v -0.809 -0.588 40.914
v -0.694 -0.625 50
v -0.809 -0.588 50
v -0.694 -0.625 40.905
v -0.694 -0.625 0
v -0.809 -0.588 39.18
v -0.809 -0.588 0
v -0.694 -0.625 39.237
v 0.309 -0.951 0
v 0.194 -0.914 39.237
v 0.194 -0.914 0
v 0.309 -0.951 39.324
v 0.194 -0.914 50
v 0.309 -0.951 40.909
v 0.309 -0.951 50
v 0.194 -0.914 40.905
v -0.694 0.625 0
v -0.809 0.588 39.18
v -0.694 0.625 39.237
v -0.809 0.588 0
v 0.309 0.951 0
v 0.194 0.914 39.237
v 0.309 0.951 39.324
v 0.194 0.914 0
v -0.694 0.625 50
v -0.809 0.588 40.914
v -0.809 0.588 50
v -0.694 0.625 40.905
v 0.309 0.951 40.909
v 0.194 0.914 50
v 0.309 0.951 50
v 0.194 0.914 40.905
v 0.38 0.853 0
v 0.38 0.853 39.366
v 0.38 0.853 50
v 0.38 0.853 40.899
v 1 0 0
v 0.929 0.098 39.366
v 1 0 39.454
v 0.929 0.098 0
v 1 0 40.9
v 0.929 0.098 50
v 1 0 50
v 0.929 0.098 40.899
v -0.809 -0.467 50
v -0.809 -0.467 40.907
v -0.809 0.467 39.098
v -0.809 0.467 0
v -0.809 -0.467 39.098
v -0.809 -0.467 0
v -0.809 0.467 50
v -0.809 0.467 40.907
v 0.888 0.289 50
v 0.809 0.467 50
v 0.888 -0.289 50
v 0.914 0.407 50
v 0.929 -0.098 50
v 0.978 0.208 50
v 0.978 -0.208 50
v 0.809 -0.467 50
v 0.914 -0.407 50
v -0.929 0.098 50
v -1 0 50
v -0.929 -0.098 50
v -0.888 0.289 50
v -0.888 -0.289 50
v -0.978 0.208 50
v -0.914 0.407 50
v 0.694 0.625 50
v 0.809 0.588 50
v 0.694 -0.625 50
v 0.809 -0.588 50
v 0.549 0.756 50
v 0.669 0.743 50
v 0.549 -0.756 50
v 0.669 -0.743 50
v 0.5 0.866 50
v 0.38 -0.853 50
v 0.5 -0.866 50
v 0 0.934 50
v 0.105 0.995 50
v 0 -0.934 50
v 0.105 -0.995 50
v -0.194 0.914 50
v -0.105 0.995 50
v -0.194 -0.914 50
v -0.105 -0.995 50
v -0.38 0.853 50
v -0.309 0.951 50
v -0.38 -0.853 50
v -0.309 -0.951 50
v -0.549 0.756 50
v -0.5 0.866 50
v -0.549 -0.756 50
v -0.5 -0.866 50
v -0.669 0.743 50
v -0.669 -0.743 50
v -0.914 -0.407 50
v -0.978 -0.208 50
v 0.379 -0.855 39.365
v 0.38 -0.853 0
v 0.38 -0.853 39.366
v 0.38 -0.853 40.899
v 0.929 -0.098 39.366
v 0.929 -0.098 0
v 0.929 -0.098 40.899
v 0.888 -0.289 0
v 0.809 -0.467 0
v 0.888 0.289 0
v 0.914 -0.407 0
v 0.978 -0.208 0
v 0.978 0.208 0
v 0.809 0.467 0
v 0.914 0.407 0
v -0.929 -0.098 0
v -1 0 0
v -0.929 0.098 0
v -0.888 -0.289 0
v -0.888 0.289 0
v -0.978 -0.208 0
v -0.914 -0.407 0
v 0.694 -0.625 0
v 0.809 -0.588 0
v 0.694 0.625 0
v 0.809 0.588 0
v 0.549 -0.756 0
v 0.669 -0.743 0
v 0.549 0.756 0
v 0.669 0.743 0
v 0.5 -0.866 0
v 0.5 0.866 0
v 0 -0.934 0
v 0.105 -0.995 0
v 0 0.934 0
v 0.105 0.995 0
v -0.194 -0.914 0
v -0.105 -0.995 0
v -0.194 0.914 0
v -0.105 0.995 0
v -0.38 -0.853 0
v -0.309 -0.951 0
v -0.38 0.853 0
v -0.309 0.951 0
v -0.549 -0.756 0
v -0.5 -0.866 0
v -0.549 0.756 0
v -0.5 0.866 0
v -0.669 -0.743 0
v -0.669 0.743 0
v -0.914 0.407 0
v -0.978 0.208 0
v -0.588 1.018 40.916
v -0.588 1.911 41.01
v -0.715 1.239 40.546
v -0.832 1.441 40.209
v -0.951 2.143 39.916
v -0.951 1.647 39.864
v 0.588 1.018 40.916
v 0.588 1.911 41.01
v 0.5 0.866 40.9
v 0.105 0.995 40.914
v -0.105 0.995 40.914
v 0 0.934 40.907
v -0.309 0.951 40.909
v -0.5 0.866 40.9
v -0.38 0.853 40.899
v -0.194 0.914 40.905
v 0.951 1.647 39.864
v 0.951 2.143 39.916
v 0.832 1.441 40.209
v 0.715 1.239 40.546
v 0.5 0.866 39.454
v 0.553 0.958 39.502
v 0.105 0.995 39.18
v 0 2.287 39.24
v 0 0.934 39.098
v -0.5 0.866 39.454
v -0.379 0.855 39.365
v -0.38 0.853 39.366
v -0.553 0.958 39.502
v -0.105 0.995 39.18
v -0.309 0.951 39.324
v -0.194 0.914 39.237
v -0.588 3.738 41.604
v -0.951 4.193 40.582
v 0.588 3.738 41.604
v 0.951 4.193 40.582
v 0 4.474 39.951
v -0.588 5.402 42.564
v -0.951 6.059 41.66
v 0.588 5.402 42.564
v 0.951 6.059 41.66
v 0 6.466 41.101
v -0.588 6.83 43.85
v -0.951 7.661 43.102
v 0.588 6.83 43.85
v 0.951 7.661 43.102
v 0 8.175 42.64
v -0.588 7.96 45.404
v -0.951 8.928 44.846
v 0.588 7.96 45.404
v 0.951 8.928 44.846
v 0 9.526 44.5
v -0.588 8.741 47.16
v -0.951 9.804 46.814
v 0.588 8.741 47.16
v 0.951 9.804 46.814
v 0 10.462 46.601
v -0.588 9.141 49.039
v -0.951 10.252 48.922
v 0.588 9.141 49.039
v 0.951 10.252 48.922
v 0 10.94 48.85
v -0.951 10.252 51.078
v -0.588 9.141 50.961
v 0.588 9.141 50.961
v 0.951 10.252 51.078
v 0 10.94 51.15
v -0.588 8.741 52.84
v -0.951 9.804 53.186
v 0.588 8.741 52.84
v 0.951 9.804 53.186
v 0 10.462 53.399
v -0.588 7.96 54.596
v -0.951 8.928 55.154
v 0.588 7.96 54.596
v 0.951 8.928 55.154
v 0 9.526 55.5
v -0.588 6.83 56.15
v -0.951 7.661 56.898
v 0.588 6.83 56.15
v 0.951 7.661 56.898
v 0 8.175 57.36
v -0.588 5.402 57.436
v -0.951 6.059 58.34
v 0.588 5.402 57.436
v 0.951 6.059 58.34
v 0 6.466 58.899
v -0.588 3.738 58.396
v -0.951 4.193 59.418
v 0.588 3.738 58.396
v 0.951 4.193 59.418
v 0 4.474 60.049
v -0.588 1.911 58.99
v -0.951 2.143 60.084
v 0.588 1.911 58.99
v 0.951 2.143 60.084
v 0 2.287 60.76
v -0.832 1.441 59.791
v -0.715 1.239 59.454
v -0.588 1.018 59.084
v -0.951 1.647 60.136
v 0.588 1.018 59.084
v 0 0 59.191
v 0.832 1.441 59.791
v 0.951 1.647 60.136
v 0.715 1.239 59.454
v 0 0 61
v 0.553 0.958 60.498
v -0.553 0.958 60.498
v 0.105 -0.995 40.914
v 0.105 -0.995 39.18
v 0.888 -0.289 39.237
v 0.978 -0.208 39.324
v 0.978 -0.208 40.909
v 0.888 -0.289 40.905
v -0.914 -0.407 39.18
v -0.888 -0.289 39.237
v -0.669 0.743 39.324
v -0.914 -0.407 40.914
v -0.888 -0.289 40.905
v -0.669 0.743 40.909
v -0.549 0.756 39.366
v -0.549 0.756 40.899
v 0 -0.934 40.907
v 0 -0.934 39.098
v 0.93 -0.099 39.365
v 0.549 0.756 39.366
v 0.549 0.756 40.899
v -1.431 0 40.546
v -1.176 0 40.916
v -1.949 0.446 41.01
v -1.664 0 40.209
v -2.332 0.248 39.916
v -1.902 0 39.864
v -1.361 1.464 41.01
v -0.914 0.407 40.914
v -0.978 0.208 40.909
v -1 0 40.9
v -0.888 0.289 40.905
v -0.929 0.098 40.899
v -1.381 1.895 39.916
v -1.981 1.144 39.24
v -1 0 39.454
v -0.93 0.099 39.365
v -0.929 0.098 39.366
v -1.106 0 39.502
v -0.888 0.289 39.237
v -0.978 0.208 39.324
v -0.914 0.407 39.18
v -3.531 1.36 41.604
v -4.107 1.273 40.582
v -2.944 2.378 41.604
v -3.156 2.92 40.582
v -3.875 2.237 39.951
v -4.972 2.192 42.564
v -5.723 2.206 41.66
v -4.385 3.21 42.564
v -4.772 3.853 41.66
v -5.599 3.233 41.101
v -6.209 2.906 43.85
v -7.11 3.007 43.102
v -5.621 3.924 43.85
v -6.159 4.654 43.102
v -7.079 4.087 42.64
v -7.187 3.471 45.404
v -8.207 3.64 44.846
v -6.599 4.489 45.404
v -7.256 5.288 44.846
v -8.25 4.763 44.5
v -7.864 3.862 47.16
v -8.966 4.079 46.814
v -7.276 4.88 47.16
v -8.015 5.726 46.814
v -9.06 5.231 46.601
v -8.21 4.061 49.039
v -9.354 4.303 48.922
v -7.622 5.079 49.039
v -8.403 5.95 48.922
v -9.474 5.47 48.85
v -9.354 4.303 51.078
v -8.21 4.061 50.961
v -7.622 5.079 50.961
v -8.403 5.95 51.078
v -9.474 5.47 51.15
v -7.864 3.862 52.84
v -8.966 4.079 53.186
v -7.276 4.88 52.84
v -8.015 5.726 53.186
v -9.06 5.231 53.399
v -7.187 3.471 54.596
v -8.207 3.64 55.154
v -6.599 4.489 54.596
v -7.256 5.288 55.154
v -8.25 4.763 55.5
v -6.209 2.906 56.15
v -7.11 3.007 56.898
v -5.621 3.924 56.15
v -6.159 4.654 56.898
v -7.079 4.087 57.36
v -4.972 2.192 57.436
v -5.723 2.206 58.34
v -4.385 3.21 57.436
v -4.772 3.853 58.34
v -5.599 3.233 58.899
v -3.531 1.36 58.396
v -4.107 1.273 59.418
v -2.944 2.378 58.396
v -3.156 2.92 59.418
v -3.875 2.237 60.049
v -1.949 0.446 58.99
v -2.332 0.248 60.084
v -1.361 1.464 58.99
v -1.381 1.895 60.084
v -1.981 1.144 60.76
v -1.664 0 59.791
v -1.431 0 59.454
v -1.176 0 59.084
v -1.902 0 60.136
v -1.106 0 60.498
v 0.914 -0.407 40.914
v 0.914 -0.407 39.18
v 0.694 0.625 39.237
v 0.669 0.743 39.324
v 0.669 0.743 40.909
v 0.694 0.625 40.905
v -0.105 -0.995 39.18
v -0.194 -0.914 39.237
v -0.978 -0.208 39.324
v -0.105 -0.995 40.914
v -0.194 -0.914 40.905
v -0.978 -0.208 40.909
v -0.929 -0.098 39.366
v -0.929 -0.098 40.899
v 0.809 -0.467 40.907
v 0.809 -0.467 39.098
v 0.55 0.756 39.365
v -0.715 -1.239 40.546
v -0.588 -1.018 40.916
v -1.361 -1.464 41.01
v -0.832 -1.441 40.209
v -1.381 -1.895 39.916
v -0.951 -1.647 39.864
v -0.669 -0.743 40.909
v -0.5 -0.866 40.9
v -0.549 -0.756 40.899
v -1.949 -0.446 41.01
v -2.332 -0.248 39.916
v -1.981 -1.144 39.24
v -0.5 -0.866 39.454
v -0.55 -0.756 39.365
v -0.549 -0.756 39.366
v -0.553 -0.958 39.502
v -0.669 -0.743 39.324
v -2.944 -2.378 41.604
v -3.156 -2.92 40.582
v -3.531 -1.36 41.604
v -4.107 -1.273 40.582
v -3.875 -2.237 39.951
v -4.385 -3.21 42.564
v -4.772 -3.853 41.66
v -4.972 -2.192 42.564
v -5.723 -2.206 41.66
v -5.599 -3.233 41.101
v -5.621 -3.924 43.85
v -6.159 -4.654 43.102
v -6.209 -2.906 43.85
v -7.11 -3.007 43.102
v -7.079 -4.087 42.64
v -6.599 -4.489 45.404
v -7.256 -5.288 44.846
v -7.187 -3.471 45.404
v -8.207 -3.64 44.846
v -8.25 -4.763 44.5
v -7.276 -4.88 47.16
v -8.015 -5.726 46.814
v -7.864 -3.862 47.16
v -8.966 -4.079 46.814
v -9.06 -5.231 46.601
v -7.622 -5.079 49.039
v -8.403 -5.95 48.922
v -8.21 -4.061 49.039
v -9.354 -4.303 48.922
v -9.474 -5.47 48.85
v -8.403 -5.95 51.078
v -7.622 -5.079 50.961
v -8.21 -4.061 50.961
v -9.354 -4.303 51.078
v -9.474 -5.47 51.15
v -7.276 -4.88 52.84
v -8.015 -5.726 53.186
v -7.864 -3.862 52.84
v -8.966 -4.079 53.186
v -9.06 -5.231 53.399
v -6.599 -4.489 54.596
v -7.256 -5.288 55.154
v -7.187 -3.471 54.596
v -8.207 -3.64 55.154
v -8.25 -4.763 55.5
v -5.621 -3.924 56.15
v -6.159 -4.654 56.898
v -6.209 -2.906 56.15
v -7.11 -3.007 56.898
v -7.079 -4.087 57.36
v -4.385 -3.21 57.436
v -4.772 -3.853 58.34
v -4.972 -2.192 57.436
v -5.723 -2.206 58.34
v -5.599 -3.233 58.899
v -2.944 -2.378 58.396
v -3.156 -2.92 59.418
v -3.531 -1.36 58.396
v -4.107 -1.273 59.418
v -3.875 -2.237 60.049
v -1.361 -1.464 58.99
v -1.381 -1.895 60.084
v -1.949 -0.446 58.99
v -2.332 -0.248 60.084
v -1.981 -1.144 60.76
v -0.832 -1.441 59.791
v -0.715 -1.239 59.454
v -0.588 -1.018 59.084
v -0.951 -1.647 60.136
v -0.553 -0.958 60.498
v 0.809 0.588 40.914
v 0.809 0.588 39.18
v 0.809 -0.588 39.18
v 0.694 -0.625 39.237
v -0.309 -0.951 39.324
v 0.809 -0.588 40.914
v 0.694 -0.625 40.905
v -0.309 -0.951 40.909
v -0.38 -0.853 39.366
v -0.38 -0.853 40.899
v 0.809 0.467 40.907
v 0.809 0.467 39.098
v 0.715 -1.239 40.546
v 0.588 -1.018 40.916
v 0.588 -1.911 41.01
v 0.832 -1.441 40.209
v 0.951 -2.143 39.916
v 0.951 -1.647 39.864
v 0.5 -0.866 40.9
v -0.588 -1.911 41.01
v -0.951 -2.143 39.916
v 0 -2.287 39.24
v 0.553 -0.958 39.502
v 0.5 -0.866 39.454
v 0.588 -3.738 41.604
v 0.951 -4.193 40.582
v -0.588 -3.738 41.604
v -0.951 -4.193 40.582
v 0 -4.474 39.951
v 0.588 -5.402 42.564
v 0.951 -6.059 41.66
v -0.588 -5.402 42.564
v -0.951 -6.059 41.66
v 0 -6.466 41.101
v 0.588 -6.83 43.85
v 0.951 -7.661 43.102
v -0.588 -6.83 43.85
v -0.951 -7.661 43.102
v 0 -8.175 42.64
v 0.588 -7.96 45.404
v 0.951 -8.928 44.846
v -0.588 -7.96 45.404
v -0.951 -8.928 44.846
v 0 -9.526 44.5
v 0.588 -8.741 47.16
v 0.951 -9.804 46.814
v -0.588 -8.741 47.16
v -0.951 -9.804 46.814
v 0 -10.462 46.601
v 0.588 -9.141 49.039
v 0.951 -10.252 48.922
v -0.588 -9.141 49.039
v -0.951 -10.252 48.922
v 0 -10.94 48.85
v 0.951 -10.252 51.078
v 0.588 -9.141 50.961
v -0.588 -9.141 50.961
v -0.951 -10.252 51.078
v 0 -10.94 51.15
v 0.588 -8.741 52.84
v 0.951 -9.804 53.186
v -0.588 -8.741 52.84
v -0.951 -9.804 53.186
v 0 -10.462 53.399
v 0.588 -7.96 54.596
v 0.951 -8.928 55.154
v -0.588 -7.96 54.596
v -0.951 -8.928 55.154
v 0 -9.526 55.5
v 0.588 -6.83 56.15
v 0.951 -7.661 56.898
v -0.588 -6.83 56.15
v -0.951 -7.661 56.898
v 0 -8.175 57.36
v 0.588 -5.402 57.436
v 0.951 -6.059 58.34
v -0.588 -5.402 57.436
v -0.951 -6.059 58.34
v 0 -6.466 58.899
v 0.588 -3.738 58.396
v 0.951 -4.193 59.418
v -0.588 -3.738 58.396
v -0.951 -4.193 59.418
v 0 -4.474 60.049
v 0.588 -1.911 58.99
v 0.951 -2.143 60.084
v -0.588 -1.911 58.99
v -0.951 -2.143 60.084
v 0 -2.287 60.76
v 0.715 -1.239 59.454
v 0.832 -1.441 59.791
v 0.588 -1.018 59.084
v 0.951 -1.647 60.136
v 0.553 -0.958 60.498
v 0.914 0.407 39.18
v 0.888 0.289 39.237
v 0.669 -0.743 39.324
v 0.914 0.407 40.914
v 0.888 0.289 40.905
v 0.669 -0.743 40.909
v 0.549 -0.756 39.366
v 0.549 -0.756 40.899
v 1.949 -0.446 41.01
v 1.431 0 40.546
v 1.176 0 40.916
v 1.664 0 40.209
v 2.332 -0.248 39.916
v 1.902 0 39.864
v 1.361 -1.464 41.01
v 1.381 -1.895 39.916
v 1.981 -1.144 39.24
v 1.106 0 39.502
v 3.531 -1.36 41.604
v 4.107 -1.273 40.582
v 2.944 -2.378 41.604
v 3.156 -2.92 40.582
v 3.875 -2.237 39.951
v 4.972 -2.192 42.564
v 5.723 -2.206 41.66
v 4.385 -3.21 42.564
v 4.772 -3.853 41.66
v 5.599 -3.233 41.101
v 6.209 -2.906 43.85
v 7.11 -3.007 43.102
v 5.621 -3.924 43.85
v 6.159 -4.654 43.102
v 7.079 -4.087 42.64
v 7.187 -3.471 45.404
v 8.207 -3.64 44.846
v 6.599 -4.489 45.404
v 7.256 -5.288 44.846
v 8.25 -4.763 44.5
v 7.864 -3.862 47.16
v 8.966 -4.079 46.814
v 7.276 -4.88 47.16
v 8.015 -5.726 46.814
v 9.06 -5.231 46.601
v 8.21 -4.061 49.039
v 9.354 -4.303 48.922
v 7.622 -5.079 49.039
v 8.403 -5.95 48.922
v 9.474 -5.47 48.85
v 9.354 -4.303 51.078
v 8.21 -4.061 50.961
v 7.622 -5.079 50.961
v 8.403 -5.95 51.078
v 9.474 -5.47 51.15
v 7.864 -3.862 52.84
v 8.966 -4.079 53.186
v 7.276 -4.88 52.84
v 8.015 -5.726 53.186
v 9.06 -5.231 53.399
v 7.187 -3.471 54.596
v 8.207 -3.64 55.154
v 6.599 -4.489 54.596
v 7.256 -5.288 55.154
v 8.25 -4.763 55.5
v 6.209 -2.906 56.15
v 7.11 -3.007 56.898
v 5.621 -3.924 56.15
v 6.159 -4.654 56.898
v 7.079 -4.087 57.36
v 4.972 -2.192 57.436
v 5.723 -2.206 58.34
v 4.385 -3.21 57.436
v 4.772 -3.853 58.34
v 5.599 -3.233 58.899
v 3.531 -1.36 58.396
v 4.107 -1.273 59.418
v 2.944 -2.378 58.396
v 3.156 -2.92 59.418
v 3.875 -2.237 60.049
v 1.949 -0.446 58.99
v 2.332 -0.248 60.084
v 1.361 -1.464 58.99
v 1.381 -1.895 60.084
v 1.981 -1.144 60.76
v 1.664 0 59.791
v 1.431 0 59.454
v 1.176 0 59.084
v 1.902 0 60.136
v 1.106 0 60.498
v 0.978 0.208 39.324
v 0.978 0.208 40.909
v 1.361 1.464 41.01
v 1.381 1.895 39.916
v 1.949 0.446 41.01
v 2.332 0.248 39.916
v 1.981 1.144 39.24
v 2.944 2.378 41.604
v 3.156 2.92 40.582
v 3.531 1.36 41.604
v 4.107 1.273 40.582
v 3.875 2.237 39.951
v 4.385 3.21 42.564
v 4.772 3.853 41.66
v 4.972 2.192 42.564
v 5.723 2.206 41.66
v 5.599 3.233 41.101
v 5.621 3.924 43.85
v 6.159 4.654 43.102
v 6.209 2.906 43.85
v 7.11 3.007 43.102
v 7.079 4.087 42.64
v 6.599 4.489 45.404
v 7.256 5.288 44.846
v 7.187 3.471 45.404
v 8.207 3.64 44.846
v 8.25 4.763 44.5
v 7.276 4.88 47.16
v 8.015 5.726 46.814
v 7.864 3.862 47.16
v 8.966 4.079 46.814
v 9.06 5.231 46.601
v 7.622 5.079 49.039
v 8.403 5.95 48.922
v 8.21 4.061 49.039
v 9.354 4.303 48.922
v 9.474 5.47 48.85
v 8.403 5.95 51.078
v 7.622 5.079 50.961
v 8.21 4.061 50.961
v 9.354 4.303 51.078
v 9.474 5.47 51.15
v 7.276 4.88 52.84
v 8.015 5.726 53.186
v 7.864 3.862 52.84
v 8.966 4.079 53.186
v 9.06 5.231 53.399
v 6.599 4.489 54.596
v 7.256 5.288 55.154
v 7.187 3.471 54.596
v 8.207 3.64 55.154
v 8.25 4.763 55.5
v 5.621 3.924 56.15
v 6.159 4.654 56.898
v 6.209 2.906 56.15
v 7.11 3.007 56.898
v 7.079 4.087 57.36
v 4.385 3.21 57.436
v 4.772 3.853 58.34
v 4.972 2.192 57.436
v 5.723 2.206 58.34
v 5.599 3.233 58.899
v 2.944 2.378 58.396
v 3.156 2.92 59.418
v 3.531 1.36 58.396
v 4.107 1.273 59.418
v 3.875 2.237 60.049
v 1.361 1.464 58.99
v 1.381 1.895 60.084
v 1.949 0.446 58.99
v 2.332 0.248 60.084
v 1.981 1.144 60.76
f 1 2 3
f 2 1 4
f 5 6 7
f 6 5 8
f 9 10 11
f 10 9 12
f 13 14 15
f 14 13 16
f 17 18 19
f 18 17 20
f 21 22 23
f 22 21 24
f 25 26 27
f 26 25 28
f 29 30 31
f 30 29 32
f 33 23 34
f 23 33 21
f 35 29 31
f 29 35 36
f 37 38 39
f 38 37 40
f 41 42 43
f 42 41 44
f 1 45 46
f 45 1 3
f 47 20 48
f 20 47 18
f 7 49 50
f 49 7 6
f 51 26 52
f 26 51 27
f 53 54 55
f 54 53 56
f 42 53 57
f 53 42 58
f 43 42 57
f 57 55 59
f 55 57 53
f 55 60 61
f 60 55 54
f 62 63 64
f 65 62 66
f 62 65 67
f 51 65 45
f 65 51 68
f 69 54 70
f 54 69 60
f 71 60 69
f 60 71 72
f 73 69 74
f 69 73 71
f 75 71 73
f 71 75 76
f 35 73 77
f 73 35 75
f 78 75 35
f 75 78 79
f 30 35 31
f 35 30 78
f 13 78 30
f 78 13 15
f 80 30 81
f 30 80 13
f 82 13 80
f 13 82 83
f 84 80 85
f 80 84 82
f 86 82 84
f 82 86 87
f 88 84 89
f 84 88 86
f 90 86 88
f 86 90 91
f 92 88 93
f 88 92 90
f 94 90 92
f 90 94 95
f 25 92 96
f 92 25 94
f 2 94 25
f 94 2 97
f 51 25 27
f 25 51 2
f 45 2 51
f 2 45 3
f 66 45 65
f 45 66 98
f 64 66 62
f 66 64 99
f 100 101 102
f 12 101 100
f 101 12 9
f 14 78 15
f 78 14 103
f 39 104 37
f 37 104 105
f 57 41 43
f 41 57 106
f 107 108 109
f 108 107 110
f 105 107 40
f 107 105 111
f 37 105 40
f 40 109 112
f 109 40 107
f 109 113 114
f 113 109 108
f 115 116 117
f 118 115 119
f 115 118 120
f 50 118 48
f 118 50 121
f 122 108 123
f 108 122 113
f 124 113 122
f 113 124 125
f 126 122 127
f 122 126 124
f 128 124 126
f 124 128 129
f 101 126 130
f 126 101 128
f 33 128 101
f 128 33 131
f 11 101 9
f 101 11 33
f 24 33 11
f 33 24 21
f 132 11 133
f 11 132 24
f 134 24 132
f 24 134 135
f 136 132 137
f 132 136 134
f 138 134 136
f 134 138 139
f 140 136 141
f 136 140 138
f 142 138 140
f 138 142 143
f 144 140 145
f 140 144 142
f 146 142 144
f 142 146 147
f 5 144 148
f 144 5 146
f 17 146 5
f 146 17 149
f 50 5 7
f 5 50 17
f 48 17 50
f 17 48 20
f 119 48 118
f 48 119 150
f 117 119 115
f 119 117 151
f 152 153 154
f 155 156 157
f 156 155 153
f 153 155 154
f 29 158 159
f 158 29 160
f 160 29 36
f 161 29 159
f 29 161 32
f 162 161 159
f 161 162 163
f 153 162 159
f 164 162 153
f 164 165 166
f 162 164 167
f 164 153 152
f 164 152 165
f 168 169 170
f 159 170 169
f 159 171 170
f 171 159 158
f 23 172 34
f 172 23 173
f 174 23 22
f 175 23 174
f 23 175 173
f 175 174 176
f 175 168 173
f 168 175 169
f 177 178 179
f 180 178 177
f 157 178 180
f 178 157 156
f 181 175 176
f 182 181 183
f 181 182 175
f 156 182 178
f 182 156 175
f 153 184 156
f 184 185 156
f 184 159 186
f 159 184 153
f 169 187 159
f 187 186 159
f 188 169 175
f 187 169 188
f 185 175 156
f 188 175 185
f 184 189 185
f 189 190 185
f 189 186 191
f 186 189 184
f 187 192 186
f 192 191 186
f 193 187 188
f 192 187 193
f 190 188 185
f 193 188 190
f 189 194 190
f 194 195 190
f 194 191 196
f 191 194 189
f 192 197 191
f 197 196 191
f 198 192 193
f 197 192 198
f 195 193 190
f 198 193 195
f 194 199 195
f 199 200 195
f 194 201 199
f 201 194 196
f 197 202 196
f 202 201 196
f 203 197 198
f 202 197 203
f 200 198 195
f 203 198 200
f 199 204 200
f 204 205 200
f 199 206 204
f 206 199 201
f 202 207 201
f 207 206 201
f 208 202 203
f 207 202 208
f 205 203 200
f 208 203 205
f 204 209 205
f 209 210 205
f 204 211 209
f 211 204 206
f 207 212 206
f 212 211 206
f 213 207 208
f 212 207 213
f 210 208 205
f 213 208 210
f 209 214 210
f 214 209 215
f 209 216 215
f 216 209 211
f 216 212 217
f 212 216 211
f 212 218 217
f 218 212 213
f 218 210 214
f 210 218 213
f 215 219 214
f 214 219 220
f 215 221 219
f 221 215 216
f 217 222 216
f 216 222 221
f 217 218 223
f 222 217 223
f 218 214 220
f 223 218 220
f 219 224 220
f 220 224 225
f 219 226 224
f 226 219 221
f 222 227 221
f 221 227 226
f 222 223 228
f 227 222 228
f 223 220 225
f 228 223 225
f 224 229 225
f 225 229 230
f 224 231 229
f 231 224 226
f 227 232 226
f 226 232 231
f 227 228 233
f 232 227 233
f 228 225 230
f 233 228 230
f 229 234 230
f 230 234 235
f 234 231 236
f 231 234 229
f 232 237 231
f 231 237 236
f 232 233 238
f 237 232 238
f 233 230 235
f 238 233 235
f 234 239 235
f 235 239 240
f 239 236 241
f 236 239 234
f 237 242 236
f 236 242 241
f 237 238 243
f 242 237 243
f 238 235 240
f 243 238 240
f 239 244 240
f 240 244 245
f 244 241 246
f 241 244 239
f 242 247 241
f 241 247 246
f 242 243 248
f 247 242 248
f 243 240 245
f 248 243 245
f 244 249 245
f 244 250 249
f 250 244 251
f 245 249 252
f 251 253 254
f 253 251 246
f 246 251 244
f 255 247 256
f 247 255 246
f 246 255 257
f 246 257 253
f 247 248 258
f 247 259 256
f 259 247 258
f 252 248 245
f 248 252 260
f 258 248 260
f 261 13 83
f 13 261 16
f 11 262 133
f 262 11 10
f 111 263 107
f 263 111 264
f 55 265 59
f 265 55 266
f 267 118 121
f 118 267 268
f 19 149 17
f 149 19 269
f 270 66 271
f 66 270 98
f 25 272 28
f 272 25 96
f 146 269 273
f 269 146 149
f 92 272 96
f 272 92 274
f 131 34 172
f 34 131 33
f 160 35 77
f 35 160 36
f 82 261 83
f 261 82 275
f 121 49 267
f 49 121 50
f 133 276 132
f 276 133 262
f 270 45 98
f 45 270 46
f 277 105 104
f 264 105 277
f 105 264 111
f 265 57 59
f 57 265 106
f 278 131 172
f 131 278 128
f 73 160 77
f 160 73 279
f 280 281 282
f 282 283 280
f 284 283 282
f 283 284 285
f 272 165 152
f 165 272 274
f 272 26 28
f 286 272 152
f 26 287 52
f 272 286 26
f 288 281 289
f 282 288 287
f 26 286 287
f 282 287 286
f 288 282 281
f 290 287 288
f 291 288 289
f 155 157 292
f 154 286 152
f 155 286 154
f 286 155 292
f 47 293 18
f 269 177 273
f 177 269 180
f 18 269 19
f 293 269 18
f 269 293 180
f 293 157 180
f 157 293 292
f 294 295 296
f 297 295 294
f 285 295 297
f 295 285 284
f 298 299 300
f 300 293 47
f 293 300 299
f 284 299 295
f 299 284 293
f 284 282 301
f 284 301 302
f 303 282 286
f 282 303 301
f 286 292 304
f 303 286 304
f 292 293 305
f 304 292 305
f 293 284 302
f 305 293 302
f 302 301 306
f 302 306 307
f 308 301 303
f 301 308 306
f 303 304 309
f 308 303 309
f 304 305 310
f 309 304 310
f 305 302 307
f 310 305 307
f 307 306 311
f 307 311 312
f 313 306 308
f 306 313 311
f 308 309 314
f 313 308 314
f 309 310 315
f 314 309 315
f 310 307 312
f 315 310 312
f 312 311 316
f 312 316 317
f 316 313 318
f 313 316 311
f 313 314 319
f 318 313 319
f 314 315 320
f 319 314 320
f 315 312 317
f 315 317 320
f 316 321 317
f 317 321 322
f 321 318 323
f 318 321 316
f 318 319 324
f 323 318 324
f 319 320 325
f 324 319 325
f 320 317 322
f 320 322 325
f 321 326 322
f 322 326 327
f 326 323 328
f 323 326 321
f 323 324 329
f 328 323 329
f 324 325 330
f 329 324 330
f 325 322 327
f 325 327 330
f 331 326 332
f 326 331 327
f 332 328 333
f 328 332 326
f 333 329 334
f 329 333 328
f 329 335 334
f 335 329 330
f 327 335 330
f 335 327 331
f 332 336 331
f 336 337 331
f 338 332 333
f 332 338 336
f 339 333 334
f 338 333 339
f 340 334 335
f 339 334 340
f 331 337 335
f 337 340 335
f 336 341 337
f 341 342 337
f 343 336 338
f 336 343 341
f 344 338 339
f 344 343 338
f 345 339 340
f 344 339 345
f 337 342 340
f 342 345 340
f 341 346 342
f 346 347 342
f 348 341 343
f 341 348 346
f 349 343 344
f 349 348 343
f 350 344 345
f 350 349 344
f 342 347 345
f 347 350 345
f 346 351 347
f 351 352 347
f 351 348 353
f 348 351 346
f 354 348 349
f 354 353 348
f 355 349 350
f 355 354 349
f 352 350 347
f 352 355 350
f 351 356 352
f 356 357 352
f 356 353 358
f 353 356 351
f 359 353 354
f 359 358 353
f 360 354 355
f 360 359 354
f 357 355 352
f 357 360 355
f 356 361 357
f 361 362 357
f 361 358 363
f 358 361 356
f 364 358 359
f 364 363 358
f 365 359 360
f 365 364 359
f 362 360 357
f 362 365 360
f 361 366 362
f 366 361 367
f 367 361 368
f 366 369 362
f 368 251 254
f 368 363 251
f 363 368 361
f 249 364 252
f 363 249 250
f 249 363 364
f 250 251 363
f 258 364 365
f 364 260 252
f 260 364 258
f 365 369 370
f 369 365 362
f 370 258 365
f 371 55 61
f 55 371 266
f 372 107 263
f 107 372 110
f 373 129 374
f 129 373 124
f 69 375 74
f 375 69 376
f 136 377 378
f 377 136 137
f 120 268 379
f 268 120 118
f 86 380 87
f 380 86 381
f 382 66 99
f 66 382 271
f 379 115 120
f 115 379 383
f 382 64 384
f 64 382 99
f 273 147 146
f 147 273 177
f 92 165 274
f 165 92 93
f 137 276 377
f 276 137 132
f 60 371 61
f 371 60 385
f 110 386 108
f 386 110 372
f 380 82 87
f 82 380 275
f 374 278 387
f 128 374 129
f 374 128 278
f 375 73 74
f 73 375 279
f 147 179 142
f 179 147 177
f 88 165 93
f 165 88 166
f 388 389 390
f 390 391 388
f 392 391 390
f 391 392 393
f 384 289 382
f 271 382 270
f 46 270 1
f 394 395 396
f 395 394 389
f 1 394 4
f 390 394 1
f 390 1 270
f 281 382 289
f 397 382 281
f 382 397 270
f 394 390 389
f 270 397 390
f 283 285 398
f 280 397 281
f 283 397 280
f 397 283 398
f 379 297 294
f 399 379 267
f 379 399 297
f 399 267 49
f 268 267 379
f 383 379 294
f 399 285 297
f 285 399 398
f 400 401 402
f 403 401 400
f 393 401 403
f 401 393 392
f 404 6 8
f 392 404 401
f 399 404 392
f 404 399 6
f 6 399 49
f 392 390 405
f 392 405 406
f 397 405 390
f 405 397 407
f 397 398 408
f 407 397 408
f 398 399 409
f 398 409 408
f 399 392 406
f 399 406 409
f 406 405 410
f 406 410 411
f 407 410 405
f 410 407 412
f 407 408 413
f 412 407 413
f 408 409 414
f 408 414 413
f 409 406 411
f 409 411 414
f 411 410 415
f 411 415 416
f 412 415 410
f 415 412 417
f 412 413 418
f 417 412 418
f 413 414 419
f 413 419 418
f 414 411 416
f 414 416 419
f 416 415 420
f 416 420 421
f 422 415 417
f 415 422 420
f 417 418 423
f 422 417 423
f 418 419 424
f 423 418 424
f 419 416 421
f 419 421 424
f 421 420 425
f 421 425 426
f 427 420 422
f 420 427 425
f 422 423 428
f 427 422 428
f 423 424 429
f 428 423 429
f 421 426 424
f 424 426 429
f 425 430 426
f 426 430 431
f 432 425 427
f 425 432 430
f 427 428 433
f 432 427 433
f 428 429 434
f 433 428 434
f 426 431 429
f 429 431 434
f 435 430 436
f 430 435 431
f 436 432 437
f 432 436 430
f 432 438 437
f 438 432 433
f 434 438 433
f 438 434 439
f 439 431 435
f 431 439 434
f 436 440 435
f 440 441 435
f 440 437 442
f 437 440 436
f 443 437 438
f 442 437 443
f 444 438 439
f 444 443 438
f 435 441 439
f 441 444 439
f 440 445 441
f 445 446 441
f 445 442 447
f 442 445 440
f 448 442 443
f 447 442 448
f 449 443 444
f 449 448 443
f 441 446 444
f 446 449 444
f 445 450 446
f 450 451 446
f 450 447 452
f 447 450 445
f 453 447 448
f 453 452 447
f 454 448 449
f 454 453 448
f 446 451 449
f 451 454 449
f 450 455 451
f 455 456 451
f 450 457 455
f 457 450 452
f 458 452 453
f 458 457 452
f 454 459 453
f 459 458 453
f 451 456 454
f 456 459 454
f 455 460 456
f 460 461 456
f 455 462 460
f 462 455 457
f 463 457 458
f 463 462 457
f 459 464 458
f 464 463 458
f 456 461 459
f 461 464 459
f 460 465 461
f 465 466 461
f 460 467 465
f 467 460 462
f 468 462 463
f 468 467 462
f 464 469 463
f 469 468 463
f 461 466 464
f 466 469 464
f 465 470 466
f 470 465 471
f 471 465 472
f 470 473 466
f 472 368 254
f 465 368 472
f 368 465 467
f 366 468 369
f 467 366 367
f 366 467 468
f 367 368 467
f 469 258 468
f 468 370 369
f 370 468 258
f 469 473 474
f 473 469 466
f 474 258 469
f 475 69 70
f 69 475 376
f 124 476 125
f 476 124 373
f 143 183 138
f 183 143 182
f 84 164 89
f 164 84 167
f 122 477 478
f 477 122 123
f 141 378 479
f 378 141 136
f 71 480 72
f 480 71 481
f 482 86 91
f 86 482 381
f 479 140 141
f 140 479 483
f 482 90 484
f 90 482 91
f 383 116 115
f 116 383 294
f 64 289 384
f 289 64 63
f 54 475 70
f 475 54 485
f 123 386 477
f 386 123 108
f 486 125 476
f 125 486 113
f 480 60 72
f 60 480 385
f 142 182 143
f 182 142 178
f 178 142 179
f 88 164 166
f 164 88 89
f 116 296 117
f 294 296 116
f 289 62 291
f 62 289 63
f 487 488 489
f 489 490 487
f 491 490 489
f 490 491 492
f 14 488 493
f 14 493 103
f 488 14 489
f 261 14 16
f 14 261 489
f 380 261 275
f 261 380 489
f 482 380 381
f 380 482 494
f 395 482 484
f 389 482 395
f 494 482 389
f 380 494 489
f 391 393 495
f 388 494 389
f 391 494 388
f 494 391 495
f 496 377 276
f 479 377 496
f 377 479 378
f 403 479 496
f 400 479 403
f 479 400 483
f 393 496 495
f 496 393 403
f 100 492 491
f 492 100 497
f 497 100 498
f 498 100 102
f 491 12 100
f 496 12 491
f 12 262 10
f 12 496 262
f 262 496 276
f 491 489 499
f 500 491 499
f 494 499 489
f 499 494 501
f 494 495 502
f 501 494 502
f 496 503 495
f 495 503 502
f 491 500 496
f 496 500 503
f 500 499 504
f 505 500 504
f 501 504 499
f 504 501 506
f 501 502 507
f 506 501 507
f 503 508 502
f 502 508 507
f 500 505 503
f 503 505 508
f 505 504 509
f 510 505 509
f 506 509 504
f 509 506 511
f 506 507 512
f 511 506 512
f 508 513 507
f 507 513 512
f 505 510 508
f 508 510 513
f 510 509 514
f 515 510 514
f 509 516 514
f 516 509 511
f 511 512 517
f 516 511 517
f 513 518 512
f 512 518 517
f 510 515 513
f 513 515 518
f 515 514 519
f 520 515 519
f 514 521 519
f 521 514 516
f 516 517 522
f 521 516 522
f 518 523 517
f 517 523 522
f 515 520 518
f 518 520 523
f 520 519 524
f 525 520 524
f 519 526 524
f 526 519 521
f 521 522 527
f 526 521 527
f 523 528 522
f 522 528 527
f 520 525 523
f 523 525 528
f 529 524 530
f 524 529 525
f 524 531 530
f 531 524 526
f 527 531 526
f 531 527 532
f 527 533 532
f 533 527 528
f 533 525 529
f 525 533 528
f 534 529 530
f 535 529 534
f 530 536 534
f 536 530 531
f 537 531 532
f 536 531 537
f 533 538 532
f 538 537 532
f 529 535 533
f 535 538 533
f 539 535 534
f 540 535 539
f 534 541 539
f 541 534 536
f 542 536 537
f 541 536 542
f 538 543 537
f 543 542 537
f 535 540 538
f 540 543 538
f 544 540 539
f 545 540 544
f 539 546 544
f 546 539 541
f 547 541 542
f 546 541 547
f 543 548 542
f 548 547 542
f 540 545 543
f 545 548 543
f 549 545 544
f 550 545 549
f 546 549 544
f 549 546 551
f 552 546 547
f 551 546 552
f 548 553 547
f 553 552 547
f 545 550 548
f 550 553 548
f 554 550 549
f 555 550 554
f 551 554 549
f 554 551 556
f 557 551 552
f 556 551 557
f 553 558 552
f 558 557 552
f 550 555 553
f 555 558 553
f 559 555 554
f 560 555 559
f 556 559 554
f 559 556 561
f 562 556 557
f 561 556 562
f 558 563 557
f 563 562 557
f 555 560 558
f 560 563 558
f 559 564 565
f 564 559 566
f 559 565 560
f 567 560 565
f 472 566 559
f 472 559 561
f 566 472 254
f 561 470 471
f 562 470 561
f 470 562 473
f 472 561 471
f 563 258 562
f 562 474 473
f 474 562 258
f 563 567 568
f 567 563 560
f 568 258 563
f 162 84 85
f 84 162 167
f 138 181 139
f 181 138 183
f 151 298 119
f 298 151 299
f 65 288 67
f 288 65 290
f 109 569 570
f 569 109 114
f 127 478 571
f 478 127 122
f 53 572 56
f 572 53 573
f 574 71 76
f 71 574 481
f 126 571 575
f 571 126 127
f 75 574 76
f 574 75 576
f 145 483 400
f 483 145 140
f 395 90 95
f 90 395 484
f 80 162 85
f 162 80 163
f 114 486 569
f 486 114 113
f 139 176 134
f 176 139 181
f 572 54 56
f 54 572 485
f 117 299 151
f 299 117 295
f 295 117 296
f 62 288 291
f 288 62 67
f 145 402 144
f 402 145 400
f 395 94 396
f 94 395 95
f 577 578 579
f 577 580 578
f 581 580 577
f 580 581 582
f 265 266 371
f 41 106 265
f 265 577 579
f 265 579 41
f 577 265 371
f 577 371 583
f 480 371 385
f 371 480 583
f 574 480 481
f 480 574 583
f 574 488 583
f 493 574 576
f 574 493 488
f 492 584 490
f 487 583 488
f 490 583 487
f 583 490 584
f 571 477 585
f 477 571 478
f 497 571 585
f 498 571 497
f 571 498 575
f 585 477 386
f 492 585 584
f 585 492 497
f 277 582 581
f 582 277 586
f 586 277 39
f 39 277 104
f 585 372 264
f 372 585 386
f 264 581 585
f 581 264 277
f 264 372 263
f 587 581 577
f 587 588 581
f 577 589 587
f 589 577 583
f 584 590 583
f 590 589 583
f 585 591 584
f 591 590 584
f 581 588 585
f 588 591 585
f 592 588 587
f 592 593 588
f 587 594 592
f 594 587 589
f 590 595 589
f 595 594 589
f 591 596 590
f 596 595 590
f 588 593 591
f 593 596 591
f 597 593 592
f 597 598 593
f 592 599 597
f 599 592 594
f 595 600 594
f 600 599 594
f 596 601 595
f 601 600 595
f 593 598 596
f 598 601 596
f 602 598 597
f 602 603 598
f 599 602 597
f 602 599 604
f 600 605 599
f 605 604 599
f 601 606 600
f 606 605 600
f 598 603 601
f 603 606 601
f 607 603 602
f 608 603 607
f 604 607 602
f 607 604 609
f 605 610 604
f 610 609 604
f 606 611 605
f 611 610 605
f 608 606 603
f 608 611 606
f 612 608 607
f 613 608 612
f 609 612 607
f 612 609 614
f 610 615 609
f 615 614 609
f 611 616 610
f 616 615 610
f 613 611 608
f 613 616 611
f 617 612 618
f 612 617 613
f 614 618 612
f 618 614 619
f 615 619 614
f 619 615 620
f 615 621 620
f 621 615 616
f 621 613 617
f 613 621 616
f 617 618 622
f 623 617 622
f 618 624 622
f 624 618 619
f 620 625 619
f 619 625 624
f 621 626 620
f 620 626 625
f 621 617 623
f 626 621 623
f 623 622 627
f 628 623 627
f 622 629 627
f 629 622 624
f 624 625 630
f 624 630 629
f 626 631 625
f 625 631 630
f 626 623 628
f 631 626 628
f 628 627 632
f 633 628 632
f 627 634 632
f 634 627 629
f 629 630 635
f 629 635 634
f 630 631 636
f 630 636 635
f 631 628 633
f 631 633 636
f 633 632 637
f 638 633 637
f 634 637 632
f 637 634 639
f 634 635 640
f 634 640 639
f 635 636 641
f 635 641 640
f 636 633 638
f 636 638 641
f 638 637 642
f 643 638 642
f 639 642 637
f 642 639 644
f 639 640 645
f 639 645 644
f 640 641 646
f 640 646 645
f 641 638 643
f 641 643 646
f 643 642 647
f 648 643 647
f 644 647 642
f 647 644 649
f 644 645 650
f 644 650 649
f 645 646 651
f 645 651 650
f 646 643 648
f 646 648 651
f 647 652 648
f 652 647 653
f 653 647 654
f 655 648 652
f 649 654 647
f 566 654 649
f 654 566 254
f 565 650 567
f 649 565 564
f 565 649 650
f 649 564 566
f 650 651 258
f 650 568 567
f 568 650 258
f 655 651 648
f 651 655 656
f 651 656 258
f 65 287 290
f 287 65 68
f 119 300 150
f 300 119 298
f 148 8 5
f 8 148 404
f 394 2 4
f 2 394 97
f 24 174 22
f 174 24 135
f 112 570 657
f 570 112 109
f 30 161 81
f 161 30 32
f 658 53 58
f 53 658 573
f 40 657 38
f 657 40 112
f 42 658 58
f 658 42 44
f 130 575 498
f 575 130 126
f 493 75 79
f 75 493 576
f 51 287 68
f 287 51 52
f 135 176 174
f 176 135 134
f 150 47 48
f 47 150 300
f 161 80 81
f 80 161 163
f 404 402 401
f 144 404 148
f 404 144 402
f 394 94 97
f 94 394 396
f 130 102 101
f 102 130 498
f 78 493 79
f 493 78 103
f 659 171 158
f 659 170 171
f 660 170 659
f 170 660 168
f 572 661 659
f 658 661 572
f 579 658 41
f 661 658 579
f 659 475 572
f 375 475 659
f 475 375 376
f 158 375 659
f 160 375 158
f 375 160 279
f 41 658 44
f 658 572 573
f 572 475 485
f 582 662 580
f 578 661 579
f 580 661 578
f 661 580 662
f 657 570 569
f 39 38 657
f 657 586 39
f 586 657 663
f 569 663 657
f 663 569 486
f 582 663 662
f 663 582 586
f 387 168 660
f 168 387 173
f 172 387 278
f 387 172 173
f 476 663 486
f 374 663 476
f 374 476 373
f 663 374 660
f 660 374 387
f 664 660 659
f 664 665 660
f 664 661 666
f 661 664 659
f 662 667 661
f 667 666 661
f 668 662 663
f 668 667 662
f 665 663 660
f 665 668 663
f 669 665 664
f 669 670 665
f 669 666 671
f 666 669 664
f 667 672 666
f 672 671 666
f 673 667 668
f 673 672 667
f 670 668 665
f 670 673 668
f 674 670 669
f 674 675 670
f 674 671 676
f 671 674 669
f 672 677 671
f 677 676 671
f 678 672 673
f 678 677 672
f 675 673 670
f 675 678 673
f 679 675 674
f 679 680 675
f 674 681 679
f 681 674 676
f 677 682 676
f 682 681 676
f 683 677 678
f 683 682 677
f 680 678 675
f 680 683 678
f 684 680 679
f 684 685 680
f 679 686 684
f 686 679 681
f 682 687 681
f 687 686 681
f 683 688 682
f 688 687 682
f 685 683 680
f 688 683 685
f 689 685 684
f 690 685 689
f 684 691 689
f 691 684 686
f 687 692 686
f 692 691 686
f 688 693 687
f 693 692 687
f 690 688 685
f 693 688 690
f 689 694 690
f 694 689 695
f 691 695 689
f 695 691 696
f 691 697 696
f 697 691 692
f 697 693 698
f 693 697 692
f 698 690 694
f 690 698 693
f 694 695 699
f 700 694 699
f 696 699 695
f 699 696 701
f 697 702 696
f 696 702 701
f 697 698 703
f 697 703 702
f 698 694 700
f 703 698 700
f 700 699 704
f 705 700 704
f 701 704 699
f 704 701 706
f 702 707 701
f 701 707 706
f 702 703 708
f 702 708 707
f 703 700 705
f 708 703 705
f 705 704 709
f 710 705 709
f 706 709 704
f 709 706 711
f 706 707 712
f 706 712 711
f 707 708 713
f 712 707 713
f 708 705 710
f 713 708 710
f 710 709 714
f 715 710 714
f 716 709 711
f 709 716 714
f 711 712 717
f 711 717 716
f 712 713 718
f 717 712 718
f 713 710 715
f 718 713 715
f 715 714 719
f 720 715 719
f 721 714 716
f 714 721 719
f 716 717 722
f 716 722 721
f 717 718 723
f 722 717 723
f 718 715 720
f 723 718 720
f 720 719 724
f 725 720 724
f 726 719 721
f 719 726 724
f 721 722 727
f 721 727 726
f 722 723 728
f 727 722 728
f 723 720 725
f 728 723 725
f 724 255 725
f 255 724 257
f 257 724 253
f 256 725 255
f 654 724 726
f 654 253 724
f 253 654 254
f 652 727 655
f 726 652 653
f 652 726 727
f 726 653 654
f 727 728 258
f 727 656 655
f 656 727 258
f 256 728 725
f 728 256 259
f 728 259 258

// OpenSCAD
// Parameters for the hook-shaped rod
rod_diameter = 2; // Diameter of the rod
rod_length = 50;  // Length of the straight section
hook_radius = 10; // Radius of the hook
hook_angle = 180; // Angle of the hook curve

// Function to create a single hook-shaped rod
module hook_shaped_rod() {
    // Straight section of the rod
    translate([0, 0, rod_length / 2])
        cylinder(h = rod_length, r = rod_diameter / 2, center = true);

    // Hook section of the rod
    translate([0, 0, rod_length])
        rotate([0, 90, 0])
        rotate_extrude(angle = hook_angle)
            translate([hook_radius, 0, 0])
                circle(r = rod_diameter / 2);
}

// Generate all six hook-shaped rods
for (i = [0:5]) {
    rotate([0, 0, i * 60]) // Rotate each rod by 60 degrees around the Z-axis
        hook_shaped_rod();
}
